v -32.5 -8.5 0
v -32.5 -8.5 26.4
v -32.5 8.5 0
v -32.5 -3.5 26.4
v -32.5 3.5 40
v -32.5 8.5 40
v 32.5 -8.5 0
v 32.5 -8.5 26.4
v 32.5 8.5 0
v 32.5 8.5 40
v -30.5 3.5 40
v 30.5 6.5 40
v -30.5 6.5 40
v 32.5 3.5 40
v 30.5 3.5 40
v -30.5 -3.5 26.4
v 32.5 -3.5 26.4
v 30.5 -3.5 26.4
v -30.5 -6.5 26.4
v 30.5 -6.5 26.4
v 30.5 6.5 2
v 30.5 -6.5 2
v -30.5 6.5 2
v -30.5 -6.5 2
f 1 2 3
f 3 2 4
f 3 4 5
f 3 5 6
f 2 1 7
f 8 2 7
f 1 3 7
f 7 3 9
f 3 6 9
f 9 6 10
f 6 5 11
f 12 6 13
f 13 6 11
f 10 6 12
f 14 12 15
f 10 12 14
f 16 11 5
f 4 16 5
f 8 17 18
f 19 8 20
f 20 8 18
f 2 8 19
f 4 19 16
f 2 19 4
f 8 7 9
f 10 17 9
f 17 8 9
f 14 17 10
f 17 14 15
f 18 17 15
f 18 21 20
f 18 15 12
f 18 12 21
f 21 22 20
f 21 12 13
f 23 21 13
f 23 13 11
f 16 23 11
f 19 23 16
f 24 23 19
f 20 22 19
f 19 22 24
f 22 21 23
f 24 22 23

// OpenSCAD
/*
 * Author:  Mark Hanford
 * License: Creative Commons Attribution-ShareAlike 3.0 Unported License
 *          see http://creativecommons.org/licenses/by-sa/3.0/
 * URL:     http://www.thingiverse.com/thing:172682
 */

/* [Common] */

// width of a single card
card_width = 57;

// thickness of a single card
card_thickness = 0.3;

// height of a single card
card_height = 80;

// number of cards
number_of_cards = 30;


/* [Advanced] */

// size of the front step
front_lip = 5;

// size of the back step
back_lip = 5;

// thickness of the walls of the stand
wall_thickness = 2;

// extra space around the cards
gap = 2;


/* [Hidden] */

// Show the card deck?
showCards = true;

// Shortcut for wall_thickness
t=wall_thickness;

// A tiny offset used to ensure CSG clearance and prevent coincident surface problems
j=0.01;


// Size of the actual stack of cards
stackSizeX = card_width;
stackSizeY = card_thickness * number_of_cards;
stackSizeZ = card_height;

// Calculate the major dimensions of the stand
standSizeX = stackSizeX + (t * 2) + (gap * 2);
standSizeY = stackSizeY + (t * 2) + (gap * 2);
standBackZ = stackSizeZ * 0.50;
standFrontZ = stackSizeZ * 0.33;


// The main body of the stand
module base()
{
	// Ensure that the slope doesn't cause strange artifacts on the edges
	_frontLip = max(front_lip, t);
	_backLip = max(back_lip, t);

	holeSizeX = stackSizeX + (gap * 2);
	holeSizeY = stackSizeY + (gap * 2);
	holeSizeZ = standBackZ - t;

	angle = atan((standBackZ - standFrontZ) / (standSizeY - _frontLip - _backLip));
	slopeLength = (standBackZ-standFrontZ) / sin(angle);
	slopeHeight = (standSizeY-back_lip) * sin(angle);
	stepHeight = (standBackZ-standFrontZ);

	color([0.8, 0, 0])
	difference()
	{	
		cube([standSizeX, standSizeY, standBackZ]);

		// The main hole for the cards
		translate([t, t, t])
		{
			cube([holeSizeX, holeSizeY, holeSizeZ+j]);
		}

		// The former for the slope
		if (_frontLip + _backLip >= standSizeY)
		{
			echo("Not using a slope - not enough space");
		} else {

			translate([0, _frontLip, standFrontZ])
			rotate([angle, 0, 0])
			translate([-j, 0, 0])
			cube([standSizeX+j+j, slopeLength+j, slopeHeight+j]);


			// The former to flatten the front
			translate([-j, -j, standFrontZ])
			cube([standSizeX+j+j, _frontLip+j, stepHeight+j]);
		}

	}
}


module cards()
{
	color([0.9, 0.5, 0.1, 0.8])
	translate([t, t, t+j])
	translate([gap, gap, 0])
	cube([stackSizeX, stackSizeY, stackSizeZ]);
}


translate([-standSizeX*0.5, -standSizeY*0.5, 0])
union()
{
	base();

	if (showCards)
	{
		% cards();
	}
}
